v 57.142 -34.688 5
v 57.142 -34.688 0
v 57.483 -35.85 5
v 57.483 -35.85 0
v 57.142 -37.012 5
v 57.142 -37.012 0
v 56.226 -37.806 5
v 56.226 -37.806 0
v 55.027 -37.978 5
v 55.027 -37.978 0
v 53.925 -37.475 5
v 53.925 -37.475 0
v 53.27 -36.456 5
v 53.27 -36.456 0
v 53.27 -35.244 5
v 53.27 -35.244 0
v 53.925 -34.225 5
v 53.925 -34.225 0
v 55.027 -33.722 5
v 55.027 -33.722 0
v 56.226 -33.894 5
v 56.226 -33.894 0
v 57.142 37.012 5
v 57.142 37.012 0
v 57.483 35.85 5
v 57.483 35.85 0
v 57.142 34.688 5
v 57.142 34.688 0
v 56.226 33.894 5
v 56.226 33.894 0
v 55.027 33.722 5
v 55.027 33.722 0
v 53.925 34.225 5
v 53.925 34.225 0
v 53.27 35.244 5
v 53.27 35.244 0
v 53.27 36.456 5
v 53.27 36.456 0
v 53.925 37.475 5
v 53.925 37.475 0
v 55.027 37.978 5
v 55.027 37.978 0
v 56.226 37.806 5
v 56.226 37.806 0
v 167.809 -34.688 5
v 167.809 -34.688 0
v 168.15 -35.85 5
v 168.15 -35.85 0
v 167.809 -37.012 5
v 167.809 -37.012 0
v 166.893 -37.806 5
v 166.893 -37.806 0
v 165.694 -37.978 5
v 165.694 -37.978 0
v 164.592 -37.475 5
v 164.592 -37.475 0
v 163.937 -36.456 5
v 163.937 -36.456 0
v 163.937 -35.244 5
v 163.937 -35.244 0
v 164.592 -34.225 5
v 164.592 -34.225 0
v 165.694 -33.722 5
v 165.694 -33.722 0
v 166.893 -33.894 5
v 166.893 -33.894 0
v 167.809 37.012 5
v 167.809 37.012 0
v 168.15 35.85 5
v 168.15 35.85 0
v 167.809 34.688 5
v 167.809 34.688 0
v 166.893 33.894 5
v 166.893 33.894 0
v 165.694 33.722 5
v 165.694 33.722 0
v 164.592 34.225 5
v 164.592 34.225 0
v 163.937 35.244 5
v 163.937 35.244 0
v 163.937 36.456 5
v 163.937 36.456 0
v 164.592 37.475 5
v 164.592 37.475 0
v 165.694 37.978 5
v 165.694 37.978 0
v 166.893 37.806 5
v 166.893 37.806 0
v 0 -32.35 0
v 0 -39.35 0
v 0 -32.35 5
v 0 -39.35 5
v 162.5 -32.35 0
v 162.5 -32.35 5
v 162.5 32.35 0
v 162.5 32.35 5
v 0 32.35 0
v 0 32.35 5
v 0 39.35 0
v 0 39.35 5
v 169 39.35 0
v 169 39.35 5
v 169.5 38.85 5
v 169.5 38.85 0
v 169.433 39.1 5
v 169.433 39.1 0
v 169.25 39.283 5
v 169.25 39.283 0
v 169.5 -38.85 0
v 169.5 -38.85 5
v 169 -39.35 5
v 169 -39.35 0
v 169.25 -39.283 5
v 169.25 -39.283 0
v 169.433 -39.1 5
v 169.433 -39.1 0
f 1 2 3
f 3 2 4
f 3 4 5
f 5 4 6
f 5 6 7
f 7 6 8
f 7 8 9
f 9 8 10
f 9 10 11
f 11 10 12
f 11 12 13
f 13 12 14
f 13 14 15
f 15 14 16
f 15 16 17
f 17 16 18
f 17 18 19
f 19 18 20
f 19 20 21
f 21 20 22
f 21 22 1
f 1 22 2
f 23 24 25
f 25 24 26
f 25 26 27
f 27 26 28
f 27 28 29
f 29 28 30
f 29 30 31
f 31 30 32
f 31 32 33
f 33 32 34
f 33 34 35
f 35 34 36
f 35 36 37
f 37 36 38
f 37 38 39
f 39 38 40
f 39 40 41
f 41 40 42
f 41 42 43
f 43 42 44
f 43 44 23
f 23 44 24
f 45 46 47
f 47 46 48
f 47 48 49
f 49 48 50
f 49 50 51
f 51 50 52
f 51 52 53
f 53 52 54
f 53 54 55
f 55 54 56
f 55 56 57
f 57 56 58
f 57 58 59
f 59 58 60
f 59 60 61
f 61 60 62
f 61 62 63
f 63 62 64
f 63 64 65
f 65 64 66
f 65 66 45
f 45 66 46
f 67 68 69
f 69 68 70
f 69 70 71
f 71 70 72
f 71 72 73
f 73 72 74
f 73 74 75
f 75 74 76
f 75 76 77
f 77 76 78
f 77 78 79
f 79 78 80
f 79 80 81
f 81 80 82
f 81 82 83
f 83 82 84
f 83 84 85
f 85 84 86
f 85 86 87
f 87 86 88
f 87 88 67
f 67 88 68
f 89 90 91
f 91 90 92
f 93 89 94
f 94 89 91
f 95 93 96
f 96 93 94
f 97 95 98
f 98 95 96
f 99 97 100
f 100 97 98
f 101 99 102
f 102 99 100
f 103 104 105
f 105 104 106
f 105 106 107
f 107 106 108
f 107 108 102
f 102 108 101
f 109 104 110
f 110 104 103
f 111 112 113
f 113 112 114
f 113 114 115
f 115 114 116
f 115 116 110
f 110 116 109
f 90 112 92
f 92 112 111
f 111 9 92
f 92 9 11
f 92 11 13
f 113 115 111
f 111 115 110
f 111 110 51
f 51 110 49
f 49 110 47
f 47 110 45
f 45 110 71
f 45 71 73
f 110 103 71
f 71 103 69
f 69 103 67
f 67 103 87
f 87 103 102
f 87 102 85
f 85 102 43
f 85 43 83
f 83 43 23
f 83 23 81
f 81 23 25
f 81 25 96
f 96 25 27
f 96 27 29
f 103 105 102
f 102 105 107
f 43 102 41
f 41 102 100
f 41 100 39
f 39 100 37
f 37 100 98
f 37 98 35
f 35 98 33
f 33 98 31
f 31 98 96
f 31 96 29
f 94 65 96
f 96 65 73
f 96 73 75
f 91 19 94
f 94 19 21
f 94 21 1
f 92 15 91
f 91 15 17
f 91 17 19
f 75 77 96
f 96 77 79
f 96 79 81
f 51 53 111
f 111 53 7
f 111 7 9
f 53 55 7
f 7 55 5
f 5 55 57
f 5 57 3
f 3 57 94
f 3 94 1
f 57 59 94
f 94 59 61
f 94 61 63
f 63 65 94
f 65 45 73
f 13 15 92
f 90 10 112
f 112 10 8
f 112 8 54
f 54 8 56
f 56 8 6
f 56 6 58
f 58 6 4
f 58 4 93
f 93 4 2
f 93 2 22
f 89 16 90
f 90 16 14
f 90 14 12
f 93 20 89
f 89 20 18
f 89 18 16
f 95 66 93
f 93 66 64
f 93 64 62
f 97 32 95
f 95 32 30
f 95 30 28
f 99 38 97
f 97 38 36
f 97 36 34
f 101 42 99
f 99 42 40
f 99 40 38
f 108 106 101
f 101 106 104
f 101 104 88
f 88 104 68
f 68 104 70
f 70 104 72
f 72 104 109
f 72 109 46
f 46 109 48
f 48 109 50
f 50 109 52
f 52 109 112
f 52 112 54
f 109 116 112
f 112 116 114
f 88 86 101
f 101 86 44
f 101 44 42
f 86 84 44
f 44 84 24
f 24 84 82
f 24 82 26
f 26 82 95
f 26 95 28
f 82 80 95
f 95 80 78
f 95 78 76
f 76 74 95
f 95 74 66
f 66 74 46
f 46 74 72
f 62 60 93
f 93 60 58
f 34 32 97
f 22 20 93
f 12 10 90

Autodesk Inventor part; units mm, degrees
ref_plane "YZ Plane" through (0, 0, 0) normal (1, 0, 0) x (0, 1, 0)
ref_plane "XZ Plane" through (0, 0, 0) normal (0, 1, 0) x (-1, 0, 0)
ref_plane "XY Plane" through (0, 0, 0) normal (0, 0, 1) x (1, 0, 0)
sketch "Boceto1" plane through (0, 0, 0) normal (0, 0, 1) x (1, 0, 0)
  line L0 (0, -32.35) -> (0, -39.35) projected
  line L1 (0, -39.35) -> (169, -39.35) projected
  arc A0 (169, -39.35) -> (169.5, -38.85) centre (169, -38.85) ccw projected
  line L2 (169.5, -38.85) -> (169.5, 38.85) projected
  arc A1 (169.5, 38.85) -> (169, 39.35) centre (169, 38.85) ccw projected
  line L3 (169, 39.35) -> (0, 39.35) projected
  line L4 (0, 39.35) -> (0, 32.35) projected
  line L5 (0, 32.35) -> (162.5, 32.35) projected
  line L6 (162.5, 32.35) -> (162.5, -32.35) projected
  line L7 (162.5, -32.35) -> (0, -32.35) projected
  circle A2 centre (166, 35.85) radius 2.15 projected
  circle A3 centre (166, -35.85) radius 2.15 projected
  circle A4 centre (55.3333, 35.85) radius 2.15 projected
  circle A5 centre (55.3333, -35.85) radius 2.15 projected
  point P0 (0, 0)
extrude "Extrusión1" add sketch "Boceto1" along normal blind 5
properties part number "ExtensionMarco"
